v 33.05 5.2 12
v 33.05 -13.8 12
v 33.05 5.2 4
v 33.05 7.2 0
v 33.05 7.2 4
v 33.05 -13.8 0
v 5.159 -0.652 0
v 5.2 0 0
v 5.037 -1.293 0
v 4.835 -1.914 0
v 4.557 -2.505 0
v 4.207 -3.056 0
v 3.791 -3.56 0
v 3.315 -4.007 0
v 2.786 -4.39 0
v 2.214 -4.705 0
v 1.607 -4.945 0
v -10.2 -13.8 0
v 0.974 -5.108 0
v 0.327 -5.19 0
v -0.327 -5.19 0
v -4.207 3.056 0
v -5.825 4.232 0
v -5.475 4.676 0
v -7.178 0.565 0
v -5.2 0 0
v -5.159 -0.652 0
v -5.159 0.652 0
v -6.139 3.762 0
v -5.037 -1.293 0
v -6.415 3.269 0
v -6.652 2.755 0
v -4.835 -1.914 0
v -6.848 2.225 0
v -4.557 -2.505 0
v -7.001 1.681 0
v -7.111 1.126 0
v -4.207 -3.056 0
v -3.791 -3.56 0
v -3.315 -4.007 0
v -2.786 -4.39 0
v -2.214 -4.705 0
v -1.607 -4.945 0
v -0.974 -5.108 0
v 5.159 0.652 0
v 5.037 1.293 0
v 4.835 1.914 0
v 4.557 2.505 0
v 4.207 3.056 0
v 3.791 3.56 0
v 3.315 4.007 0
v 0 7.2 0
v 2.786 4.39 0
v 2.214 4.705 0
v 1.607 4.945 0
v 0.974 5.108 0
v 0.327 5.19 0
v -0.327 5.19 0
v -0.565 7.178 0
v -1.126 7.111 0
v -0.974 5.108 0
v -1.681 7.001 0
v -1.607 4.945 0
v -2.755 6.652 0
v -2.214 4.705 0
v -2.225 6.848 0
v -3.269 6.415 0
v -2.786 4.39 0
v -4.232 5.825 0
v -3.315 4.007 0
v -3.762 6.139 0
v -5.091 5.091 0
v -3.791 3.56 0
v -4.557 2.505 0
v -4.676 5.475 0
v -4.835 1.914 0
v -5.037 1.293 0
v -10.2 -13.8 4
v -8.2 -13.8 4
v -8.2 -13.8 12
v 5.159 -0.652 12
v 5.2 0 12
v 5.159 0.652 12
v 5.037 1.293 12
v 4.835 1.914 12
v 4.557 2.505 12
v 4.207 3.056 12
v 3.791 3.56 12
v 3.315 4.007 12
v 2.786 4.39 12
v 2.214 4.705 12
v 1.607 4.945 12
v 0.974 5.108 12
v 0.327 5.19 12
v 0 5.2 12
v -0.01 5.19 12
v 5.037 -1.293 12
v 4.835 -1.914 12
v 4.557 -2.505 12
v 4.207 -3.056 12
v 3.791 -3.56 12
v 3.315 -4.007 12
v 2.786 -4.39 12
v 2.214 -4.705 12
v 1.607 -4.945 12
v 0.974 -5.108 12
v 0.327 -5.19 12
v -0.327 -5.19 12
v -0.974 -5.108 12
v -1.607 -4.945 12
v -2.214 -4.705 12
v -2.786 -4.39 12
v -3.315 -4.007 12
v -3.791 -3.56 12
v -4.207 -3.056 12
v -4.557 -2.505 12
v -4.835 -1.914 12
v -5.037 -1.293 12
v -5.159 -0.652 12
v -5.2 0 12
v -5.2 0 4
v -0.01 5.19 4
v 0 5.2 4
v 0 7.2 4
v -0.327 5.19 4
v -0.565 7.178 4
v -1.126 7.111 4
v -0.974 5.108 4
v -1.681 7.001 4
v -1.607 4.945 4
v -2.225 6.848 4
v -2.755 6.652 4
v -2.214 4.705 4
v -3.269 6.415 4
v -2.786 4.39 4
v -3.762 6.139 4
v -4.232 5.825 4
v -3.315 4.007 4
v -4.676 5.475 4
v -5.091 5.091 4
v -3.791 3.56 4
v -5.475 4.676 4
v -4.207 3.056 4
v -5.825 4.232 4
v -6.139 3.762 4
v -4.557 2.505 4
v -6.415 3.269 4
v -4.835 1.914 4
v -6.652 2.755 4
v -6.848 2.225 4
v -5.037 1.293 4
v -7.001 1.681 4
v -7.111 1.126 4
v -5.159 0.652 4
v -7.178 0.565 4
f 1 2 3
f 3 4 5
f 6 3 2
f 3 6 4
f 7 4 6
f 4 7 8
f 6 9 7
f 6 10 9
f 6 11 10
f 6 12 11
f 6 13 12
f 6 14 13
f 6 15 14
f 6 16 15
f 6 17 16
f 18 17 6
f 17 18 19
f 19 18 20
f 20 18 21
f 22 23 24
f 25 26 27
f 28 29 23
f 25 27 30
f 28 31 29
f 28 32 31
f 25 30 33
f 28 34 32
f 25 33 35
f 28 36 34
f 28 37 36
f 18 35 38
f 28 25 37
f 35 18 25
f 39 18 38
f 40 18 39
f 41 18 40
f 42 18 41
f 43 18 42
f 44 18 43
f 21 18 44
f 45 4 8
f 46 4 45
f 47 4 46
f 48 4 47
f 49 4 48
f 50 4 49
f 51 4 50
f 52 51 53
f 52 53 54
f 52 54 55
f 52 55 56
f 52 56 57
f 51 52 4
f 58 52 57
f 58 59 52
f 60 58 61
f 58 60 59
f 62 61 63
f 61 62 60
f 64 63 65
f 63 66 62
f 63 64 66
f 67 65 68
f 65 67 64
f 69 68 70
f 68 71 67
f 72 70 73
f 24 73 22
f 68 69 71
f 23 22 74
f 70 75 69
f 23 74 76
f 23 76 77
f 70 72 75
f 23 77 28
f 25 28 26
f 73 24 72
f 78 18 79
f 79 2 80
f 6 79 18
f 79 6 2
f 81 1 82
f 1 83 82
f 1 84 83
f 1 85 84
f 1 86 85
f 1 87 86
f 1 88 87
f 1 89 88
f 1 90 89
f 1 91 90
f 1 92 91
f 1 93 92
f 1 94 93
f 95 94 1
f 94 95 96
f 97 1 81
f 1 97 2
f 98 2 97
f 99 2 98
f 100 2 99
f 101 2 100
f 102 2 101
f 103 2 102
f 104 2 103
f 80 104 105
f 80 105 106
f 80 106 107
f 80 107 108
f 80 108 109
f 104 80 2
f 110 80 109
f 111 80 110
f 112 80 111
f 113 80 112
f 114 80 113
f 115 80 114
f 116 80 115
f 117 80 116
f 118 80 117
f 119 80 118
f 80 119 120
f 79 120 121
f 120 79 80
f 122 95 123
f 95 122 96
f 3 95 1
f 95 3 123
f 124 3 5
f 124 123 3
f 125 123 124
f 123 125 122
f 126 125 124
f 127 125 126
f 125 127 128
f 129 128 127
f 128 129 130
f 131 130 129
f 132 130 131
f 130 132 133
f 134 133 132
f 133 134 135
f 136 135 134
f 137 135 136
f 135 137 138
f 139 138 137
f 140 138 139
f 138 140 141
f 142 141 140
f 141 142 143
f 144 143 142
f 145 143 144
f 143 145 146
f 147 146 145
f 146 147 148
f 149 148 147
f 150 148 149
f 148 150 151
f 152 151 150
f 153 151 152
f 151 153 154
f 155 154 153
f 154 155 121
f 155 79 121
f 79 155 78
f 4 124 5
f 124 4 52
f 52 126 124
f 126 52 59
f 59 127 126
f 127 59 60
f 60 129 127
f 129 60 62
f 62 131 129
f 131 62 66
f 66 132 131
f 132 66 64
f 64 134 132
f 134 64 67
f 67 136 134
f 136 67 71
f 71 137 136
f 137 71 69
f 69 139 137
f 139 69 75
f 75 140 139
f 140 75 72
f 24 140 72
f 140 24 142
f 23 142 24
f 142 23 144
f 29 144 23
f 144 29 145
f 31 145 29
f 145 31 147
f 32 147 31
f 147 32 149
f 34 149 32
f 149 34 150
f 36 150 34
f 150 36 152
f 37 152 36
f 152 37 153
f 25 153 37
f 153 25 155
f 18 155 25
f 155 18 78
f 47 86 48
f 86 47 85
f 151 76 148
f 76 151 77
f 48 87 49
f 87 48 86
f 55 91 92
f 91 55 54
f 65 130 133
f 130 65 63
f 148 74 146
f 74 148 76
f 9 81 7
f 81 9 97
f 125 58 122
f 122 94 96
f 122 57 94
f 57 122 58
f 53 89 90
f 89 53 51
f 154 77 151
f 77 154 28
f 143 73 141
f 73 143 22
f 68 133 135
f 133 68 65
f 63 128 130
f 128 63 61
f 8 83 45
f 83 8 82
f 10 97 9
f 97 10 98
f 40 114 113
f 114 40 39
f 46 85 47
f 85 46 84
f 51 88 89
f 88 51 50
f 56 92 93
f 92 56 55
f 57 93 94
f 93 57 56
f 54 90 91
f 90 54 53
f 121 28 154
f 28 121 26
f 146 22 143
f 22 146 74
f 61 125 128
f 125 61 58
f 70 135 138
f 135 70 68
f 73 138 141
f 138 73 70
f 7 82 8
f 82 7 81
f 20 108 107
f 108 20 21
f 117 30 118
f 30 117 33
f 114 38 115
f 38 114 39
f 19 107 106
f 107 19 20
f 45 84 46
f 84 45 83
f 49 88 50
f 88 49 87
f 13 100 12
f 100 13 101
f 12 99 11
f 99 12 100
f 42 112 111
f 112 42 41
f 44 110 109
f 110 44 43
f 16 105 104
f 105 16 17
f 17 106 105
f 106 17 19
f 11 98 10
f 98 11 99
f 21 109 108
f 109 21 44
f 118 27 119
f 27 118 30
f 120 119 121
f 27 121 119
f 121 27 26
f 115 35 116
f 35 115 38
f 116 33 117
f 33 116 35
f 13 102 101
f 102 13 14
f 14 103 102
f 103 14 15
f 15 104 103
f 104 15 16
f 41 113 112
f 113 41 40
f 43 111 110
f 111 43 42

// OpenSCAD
// file: vector.scad
function is_nan(x) = x != x ;

// reverse vector
function reverse(v) = [for (i =[len(v)-1:-1:0]) v[i]];
// repeat vector n-times
function repeat(v, n) = [for (i=[0:n*len(v)-1])  v[ i%len(v) ] ];
// allow negative indexes for vector (counting from the back). -1 is last element in array
function v_index(v, n) = is_undef(n) ? len(v) : n < 0 ? len(v)+n : n ;
// cut slice of vertor. `start` included , `end` excluded.
function slice(v, start, end=undef) = [for (i=[start:v_index(v,end)-1]) v[i] ];

function v_add(v, n) = [for (i=[0:len(v)-1]) v[i]+n ];

assert(reverse([1,2,3]) == [3,2,1]);
assert(repeat([1,2],3) ==  [1, 2, 1, 2, 1, 2]);
assert(v_index([1,2,3],-1)==2);
assert(v_index([1,2,3],0) == 0);
assert(v_index([1,2,3],undef)==3);
assert(slice([1,2,3],1,-1)==[2]);
assert(slice([1,2,3],1)==[2,3]);
assert(v_add([1,2,3],1)==[2,3,4]);
// file: 2d.scad
use <vector.scad>

function max_x(a, i = 0) = (len(a) == 0) ? 0 : (i < len(a) - 1) ? max(a[i][0], max_x(a, i+1)) : a[i][0];
function shift_x(a, dx, scaler=1) = [for ( p=a) [scaler*p[0]+dx,p[1]] ];
function inverse_x(a) = shift_x(reverse(a),max_x(a),-1);
function mirror_x(a) = shift_x(reverse(a),0,-1);

function concat_with_undefs(prev,next) = 
    len(prev) == 0 ? next : 
        let (prev_last_p = prev[v_index(prev,-1)]) 
        is_undef(prev_last_p[1])  
            ? concat(slice(prev,0,-1),[[prev_last_p[0],next[0][1]]],next) 
            : is_undef(next[0][1]) 
                ? concat(prev, [[next[0][0],prev_last_p[1]]], slice(next,1)) 
                : concat(prev, next) ;

function join_poly(polys, r = [], i=0) = (i < len(polys)) ? 
    join_poly( polys, concat_with_undefs(r,shift_x(polys[i],max_x(r))) ,i+1) : r;

function line_segment(p1,p2) = [p1,[p2[0]-p1[0], p2[1] - p1[1]]];

function ls_slope(ls) = ls[1][1]/ls[1][0] ;

function ls_distance(ls) = sqrt(pow(ls[1][1],2)+pow(ls[1][0],2));

function ls_angle(ls) = 
    let (ta = asin(ls[1][1]/ls_distance(ls))) 
    sign(ls[1][0]) == -1 ? sign(ta) * 180 - ta : ta ;

function angle_diff_cw(a1, a2) = a1 < a2 ? angle_diff_cw(a1+360, a2) : a1 - a2 ;

function angle_diff_ccw(a1, a2) = angle_diff_cw(a2, a1);

function ls_midpoint(ls) = ls[0]+ls[1]/2;

function ls_endpoint(ls) = ls[0]+ls[1];

function line(slope,pt) = [slope, pt[1]-slope*pt[0]];

function l_y(l,x) = l[0]*x + l[1];

function l_segment(l,x1,x2) = line_segment([x1, l_y(l,x1)], [x2, l_y(l,x2)]);

function ls_line(ls) = let(slope=ls_slope(ls)) line(slope,ls[0]);

function ls_perpendicular(ls) = 
    let (l = ls_line(ls)) 
    let (mp = ls_midpoint(ls))
    line(-1/l[0], mp);

function intersect_lines(l1, l2) = 
    let (x = (l2[1]-l1[1])/(l1[0]-l2[0]))
    [x,l_y(l1,x)];

function interpolate_point(ls,fraction) =  [
    ls[0][0] + fraction*ls[1][0],
    ls[0][1] + fraction*ls[1][1]
];

function bezier_curve(p1 , p2,  p3) =
    [line_segment(p1,p2), line_segment(p2, p3)];

function curve_point(bc, fraction) =
    interpolate_point(
        line_segment(
            interpolate_point(bc[0],fraction), 
            interpolate_point(bc[1], fraction)), 
        fraction);

function bc_poly(bc, n_points=10) = [for ( f = [0:1/n_points:1]) curve_point(bc, f)] ;

function rake_poly(up_ramp, down_to_valley, n_of_valleys) = 
    join_poly(concat(
        [up_ramp],
        repeat(
            [
                down_to_valley, 
                inverse_x(down_to_valley) // up on other side of the valley
            ], 
            n_of_valleys),
        [inverse_x(up_ramp)] // down ramp
    ));


function arc_point(a,f) = 
    let(c = a[0])
    let(r = a[1])
    let(initial_angle = a[2])
    let(cw = a[3])
    let(range = a[4])
    let (angle = cw ? initial_angle - f * range : initial_angle + f * range)
    c+[r*cos(angle),r*sin(angle)];

function arc_poly(a, n_points=10) = [for ( f = [0:1/n_points:1]) arc_point(a, f)] ;

function arc( p1, p2, p3 ) =
    let(ls1 = line_segment(p1,p2))
    let(ls2 = line_segment(p2,p3))
    let(ls3 = line_segment(p1,p3))    
    let(lp1 = ls_perpendicular(ls1))
    let(lp2 = ls_perpendicular(ls2))
    let(lp3 = ls_perpendicular(ls3))
    let(c12 = intersect_lines(lp1,lp2))
    let(c23 = intersect_lines(lp2,lp3))
    let(c13 = intersect_lines(lp1,lp3))
    let(c = !is_nan(c23[0]) ? c23 : !is_nan(c13[0])? c13 : c12 )
    let(r1 = line_segment(c,p1))
    let(r2 = line_segment(c,p2))
    let(r3 = line_segment(c,p3))
    let(r = ls_distance(r1))
    let(a1 = ls_angle(r1))
    let(a2 = ls_angle(r2))
    let(a3 = ls_angle(r3))
    let(cw = angle_diff_cw(a1,a2) < angle_diff_cw(a1,a3))
    let(a_diff = cw ? angle_diff_cw(a1,a3) : angle_diff_ccw(a1,a3))
    [c,r,a1,cw,a_diff];
// main file
e = 1;
r = 5.2;
b = 2; //border
c = r+b;
c5 = c/5;
w1 = 38.25;
w2 = 41.25;
h = 19;
d = 8;
s = 4; // spacer
offset=w1-r;
use <2d.scad>

difference(){
    union(){
        linear_extrude(height=d+s)
            polygon(points=
                [[offset,r],[0,r],[-r,0],
                [-w2+offset,-h+r],[offset,-h+r]]
                );
        linear_extrude(height=s)
            polygon(points=concat(
                [[offset,c]],
                arc_poly(arc([0,c],[-c5*4,c5*3],[-c,0]),20),
                [[-w2+offset-b,-h+r],[offset,-h+r]])
                );
    }
    translate([0,0,-e]) cylinder(r=r, h=d+s+2*e, $fn=50);
}
